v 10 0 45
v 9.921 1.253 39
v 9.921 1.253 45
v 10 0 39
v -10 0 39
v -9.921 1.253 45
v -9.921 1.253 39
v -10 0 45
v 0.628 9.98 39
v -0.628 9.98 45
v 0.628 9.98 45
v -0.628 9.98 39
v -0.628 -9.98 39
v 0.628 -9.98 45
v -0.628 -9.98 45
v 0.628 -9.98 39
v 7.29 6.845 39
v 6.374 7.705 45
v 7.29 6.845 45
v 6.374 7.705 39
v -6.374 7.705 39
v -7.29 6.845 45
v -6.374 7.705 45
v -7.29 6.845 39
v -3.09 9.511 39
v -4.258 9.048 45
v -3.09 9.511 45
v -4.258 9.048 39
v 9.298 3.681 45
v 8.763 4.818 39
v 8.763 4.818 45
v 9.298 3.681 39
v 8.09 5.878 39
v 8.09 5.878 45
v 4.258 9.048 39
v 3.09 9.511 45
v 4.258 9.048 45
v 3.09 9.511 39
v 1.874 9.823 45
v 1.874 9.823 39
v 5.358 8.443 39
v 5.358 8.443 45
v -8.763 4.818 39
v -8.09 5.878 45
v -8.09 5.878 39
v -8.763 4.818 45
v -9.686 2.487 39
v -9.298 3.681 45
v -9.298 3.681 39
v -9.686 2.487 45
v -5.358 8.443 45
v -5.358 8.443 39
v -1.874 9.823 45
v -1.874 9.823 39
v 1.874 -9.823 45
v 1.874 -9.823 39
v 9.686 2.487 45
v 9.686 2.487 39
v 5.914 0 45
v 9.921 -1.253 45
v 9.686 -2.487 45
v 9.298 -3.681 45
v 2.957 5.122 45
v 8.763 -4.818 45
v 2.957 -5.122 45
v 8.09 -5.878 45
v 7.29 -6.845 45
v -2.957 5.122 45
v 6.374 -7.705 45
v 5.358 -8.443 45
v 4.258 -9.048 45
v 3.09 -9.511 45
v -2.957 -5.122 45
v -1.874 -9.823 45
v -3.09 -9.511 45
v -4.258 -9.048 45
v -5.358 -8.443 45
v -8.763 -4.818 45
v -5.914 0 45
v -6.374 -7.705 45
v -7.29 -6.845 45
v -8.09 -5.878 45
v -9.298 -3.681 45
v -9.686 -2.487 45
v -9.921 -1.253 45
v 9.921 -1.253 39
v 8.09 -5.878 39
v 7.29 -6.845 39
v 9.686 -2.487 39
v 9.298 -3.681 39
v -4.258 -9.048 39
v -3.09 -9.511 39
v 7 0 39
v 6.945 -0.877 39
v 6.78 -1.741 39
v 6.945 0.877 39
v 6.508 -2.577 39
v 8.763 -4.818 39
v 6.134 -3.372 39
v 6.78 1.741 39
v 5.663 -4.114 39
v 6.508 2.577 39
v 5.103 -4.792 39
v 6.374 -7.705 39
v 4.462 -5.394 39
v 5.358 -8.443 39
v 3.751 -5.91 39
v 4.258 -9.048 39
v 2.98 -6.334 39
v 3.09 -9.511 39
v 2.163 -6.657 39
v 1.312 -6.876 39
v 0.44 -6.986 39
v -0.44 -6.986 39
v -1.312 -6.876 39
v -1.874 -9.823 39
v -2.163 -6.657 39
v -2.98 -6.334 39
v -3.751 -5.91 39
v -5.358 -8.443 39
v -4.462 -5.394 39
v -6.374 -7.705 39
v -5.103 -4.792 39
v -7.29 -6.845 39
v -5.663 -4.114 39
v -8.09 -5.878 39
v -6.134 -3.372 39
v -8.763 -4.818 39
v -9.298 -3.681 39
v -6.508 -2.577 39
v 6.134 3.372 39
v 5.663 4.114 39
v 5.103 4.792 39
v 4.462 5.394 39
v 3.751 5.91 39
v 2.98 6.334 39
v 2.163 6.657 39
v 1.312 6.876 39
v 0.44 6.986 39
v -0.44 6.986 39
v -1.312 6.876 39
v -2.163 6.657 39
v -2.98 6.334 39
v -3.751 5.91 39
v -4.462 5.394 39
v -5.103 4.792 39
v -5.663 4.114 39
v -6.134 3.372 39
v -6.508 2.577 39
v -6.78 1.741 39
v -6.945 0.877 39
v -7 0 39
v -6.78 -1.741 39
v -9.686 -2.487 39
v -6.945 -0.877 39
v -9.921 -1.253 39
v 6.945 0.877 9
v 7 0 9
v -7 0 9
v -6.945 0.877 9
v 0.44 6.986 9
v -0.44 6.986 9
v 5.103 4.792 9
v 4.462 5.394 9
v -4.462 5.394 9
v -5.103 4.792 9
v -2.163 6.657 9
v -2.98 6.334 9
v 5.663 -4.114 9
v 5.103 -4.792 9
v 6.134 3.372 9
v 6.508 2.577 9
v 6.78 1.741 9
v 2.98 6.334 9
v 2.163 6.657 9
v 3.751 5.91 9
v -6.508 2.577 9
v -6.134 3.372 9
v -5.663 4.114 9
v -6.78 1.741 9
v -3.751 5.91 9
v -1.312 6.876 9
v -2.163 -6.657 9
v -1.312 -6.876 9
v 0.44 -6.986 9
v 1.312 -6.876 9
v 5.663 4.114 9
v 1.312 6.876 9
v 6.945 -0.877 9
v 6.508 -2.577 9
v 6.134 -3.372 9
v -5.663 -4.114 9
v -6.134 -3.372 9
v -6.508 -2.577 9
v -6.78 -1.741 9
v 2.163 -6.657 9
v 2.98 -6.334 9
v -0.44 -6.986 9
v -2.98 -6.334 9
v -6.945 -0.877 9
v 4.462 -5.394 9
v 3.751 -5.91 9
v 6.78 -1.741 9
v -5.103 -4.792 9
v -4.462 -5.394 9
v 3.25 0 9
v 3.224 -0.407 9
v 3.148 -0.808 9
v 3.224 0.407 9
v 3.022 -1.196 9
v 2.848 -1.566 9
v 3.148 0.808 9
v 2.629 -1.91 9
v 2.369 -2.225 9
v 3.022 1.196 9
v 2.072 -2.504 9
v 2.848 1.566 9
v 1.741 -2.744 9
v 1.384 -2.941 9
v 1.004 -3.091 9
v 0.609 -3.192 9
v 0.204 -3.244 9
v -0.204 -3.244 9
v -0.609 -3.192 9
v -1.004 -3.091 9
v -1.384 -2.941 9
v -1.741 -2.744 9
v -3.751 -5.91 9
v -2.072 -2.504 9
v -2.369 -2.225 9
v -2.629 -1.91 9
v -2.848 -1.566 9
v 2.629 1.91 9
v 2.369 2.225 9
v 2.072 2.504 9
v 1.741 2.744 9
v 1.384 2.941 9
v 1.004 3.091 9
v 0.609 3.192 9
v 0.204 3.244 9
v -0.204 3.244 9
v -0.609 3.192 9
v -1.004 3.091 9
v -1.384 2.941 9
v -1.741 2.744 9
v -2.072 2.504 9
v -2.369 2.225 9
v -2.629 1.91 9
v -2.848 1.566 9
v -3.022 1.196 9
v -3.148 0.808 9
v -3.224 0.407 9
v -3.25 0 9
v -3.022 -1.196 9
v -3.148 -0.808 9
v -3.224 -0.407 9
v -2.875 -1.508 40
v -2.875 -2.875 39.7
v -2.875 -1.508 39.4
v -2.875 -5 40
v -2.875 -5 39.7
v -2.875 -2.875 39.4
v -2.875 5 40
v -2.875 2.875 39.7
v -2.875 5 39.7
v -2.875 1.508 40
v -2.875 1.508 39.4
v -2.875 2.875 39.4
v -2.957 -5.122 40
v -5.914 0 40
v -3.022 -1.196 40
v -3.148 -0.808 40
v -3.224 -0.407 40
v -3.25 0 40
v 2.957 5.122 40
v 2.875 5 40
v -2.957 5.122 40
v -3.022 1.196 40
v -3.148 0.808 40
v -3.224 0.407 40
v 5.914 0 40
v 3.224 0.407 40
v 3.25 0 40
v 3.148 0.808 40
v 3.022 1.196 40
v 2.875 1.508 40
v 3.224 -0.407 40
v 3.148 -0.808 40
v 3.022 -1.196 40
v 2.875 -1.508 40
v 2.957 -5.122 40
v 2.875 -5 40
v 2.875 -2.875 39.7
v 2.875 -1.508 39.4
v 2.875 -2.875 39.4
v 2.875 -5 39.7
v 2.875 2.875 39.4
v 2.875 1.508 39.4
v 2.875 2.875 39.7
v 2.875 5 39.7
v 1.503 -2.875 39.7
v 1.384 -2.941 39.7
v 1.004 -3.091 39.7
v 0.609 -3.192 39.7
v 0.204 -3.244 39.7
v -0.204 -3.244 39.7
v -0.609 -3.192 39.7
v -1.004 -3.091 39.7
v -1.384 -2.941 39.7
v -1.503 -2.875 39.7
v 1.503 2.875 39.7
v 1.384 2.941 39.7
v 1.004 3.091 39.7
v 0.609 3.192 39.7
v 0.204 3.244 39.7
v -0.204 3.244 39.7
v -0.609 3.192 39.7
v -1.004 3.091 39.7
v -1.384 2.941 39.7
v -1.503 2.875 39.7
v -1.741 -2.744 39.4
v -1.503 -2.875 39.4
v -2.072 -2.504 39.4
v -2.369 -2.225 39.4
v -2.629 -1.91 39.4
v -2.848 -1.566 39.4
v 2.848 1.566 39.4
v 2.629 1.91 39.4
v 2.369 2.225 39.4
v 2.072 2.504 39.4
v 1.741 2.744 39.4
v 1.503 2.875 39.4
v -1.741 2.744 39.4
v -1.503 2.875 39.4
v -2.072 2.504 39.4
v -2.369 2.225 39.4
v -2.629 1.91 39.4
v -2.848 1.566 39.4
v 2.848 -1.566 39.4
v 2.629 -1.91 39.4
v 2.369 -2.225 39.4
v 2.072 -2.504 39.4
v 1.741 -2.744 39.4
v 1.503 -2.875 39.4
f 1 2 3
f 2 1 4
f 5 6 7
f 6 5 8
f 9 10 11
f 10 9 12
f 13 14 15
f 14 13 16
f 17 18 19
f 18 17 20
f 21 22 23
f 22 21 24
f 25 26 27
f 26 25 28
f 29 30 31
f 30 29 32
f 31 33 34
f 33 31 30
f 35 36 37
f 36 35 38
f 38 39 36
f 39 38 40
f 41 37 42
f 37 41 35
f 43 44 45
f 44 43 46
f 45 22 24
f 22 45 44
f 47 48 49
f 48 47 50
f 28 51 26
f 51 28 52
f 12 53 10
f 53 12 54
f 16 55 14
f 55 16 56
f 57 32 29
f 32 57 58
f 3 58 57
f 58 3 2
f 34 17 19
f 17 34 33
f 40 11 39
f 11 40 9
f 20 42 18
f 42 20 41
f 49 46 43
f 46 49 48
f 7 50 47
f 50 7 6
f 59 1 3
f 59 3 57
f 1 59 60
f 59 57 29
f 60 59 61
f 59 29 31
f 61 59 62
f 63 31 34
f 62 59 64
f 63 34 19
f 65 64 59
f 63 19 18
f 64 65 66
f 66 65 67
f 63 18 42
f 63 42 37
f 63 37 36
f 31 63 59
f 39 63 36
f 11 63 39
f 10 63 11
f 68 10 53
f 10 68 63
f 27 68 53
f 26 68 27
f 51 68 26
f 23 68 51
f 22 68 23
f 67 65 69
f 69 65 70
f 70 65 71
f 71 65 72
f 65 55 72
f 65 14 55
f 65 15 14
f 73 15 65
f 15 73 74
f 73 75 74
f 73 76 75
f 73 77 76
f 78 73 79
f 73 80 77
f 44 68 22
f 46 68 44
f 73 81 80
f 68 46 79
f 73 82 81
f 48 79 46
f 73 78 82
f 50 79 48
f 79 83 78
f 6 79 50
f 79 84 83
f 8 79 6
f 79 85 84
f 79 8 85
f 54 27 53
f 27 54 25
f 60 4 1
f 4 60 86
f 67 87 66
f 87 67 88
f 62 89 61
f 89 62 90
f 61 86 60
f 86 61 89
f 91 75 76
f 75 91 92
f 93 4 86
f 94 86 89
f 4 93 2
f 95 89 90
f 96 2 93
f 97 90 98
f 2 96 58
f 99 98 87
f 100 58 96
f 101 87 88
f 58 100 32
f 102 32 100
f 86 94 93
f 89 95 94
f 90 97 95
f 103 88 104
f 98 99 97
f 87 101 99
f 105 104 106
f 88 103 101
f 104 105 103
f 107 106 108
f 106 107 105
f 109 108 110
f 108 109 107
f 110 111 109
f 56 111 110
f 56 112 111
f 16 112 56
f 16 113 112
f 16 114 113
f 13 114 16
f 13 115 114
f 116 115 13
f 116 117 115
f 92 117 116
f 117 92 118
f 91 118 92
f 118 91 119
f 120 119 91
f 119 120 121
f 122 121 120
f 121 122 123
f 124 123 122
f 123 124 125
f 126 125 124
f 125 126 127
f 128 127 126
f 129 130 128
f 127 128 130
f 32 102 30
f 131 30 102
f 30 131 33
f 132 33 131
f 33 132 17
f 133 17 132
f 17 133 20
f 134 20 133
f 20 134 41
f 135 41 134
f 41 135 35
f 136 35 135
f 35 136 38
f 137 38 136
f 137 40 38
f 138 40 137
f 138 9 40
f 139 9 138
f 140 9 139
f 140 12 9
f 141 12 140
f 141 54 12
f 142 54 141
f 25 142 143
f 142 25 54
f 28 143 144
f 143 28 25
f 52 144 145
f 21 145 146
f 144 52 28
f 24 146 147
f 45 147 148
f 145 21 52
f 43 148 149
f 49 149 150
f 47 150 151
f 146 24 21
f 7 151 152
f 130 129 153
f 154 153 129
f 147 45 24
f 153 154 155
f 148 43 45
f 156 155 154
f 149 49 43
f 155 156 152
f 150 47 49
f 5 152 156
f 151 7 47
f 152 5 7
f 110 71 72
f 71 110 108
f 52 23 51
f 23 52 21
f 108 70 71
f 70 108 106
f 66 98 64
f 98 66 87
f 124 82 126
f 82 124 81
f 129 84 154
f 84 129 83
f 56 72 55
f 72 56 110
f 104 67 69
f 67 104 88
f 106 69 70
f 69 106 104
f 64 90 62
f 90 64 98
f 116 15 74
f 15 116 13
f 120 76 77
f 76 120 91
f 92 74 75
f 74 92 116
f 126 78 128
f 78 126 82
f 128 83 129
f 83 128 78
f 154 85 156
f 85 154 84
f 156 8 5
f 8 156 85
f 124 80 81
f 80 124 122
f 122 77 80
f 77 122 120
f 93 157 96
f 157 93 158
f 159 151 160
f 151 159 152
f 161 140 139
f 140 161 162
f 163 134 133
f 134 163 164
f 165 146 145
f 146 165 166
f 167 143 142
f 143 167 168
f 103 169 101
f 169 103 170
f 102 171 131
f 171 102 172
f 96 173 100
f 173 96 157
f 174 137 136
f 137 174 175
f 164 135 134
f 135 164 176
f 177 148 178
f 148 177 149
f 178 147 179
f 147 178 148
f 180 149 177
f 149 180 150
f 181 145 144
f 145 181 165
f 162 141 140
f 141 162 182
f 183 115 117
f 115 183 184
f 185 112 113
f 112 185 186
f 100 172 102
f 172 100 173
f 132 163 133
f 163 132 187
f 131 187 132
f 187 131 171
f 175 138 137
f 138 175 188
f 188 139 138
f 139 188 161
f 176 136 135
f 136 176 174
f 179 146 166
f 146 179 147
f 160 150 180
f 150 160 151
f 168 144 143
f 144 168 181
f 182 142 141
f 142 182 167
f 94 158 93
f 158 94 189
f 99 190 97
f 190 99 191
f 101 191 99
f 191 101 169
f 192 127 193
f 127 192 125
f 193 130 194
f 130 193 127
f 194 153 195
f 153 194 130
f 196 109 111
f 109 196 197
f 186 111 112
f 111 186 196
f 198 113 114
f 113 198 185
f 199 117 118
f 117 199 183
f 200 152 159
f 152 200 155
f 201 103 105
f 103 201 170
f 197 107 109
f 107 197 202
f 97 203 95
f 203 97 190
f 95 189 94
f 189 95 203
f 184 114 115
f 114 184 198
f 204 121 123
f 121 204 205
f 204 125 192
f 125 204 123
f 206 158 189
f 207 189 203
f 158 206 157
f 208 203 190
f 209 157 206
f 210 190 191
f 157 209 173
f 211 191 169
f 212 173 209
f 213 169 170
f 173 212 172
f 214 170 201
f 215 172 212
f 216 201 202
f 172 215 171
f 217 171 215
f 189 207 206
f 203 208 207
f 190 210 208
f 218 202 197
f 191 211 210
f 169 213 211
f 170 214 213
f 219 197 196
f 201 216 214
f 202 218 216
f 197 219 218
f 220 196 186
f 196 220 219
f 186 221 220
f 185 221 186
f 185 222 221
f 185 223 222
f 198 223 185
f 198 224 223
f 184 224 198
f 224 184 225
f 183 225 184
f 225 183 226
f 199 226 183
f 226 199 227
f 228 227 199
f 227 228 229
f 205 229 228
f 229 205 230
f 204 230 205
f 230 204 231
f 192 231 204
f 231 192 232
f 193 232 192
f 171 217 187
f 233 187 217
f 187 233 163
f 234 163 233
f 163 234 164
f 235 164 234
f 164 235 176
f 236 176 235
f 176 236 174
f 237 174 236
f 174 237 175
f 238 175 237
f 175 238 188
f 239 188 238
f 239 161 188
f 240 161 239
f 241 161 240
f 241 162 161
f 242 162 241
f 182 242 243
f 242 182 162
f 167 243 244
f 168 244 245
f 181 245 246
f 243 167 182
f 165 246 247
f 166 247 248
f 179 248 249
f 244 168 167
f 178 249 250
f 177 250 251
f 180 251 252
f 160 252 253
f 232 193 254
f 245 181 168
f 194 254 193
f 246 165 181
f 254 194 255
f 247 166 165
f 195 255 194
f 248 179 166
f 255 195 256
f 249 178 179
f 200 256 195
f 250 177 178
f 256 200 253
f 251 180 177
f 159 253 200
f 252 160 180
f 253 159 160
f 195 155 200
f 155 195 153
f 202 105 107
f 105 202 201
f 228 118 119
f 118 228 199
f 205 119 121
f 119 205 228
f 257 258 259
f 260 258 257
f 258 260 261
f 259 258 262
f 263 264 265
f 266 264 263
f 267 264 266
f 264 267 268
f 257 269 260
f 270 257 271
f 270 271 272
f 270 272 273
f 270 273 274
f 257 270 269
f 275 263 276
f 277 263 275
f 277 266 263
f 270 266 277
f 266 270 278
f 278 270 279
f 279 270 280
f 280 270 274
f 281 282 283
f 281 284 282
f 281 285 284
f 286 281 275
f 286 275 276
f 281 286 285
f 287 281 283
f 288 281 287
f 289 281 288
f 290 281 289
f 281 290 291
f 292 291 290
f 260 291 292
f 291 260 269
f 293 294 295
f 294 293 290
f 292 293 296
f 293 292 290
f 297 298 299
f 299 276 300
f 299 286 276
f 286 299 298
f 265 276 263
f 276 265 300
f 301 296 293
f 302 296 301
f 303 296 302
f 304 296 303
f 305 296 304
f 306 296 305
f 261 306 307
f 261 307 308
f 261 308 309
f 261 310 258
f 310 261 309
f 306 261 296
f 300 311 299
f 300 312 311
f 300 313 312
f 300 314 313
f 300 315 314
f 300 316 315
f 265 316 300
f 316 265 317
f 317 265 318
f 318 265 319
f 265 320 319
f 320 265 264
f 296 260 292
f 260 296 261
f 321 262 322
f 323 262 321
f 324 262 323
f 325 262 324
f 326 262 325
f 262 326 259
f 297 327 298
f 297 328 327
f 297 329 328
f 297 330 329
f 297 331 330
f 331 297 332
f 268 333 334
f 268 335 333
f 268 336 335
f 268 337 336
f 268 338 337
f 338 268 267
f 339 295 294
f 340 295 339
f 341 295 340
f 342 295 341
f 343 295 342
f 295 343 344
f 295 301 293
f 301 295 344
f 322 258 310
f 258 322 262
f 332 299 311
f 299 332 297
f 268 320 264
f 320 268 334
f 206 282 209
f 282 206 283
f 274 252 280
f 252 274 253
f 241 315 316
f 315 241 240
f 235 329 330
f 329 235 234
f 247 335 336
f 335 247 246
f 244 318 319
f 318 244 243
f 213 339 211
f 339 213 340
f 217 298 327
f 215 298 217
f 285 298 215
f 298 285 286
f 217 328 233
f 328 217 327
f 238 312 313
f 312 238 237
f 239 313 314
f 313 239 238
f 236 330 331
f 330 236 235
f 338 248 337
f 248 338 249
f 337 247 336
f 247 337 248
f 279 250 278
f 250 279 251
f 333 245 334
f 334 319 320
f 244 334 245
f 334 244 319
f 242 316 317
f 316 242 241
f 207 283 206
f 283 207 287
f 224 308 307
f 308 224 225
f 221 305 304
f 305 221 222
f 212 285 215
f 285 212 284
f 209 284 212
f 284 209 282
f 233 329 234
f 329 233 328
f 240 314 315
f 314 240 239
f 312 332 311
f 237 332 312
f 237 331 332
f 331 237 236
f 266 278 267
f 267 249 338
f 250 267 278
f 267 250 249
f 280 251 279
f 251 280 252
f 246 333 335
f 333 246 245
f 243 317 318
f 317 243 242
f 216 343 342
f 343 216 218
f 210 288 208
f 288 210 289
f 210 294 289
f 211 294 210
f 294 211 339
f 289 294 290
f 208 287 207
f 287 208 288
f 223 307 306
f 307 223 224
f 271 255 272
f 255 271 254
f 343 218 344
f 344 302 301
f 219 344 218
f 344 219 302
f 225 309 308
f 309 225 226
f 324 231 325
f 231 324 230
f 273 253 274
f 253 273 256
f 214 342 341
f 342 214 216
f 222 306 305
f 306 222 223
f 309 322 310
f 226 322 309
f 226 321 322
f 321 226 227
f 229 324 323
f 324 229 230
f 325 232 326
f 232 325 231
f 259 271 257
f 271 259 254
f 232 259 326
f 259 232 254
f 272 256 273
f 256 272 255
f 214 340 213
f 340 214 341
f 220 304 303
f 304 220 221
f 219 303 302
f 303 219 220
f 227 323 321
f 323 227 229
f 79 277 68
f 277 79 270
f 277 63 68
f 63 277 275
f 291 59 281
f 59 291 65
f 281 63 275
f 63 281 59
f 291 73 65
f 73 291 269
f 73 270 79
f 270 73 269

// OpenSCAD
$fn = 50;


difference() {
	union() {
		translate(v = [0, 0, 39.0000000000]) {
			cylinder(h = 6, r = 10.0000000000);
		}
		translate(v = [0, 0, 9.0000000000]) {
			cylinder(h = 36, r = 7.0000000000);
		}
	}
	union() {
		translate(v = [0, 0, 45]) {
			rotate(a = [0, 0, 0]) {
				difference() {
					union() {
						#translate(v = [-2.8750000000, -5.0000000000, -5.3000000000]) {
							cube(size = [5.7500000000, 10, 0.3000000000]);
						}
						#translate(v = [-2.8750000000, -2.8750000000, -5.6000000000]) {
							cube(size = [5.7500000000, 5.7500000000, 0.3000000000]);
						}
						#translate(v = [-2.8750000000, -5.0000000000, 0]) {
							cube(size = [5.7500000000, 10, 0.3000000000]);
						}
						#translate(v = [-2.8750000000, -2.8750000000, 0.3000000000]) {
							cube(size = [5.7500000000, 5.7500000000, 0.3000000000]);
						}
						#translate(v = [0, 0, -100.0000000000]) {
							cylinder(h = 200, r = 3.2500000000);
						}
						translate(v = [0, 0, -5]) {
							#linear_extrude(height = 5) {
								polygon(points = [[5.9142500000, 0.0000000000], [2.9571250000, 5.1218907443], [-2.9571250000, 5.1218907443], [-5.9142500000, 0.0000000000], [-2.9571250000, -5.1218907443], [2.9571250000, -5.1218907443]]);
							}
						}
						#translate(v = [-2.8750000000, -5.0000000000, -5.3000000000]) {
							cube(size = [5.7500000000, 10, 0.3000000000]);
						}
						#translate(v = [-2.8750000000, -2.8750000000, -5.6000000000]) {
							cube(size = [5.7500000000, 5.7500000000, 0.3000000000]);
						}
						#translate(v = [-2.8750000000, -5.0000000000, 0]) {
							cube(size = [5.7500000000, 10, 0.3000000000]);
						}
						#translate(v = [-2.8750000000, -2.8750000000, 0.3000000000]) {
							cube(size = [5.7500000000, 5.7500000000, 0.3000000000]);
						}
						#translate(v = [0, 0, -100.0000000000]) {
							cylinder(h = 200, r = 3.2500000000);
						}
						#translate(v = [-2.8750000000, -5.0000000000, -5.3000000000]) {
							cube(size = [5.7500000000, 10, 0.3000000000]);
						}
						#translate(v = [-2.8750000000, -2.8750000000, -5.6000000000]) {
							cube(size = [5.7500000000, 5.7500000000, 0.3000000000]);
						}
						#translate(v = [-2.8750000000, -5.0000000000, 0]) {
							cube(size = [5.7500000000, 10, 0.3000000000]);
						}
						#translate(v = [-2.8750000000, -2.8750000000, 0.3000000000]) {
							cube(size = [5.7500000000, 5.7500000000, 0.3000000000]);
						}
						#translate(v = [0, 0, -100.0000000000]) {
							cylinder(h = 200, r = 3.2500000000);
						}
					}
					union();
				}
			}
		}
		#translate(v = [0, 0, -100.0000000000]) {
			cylinder(h = 200, r = 3.2500000000);
		}
	}
}
